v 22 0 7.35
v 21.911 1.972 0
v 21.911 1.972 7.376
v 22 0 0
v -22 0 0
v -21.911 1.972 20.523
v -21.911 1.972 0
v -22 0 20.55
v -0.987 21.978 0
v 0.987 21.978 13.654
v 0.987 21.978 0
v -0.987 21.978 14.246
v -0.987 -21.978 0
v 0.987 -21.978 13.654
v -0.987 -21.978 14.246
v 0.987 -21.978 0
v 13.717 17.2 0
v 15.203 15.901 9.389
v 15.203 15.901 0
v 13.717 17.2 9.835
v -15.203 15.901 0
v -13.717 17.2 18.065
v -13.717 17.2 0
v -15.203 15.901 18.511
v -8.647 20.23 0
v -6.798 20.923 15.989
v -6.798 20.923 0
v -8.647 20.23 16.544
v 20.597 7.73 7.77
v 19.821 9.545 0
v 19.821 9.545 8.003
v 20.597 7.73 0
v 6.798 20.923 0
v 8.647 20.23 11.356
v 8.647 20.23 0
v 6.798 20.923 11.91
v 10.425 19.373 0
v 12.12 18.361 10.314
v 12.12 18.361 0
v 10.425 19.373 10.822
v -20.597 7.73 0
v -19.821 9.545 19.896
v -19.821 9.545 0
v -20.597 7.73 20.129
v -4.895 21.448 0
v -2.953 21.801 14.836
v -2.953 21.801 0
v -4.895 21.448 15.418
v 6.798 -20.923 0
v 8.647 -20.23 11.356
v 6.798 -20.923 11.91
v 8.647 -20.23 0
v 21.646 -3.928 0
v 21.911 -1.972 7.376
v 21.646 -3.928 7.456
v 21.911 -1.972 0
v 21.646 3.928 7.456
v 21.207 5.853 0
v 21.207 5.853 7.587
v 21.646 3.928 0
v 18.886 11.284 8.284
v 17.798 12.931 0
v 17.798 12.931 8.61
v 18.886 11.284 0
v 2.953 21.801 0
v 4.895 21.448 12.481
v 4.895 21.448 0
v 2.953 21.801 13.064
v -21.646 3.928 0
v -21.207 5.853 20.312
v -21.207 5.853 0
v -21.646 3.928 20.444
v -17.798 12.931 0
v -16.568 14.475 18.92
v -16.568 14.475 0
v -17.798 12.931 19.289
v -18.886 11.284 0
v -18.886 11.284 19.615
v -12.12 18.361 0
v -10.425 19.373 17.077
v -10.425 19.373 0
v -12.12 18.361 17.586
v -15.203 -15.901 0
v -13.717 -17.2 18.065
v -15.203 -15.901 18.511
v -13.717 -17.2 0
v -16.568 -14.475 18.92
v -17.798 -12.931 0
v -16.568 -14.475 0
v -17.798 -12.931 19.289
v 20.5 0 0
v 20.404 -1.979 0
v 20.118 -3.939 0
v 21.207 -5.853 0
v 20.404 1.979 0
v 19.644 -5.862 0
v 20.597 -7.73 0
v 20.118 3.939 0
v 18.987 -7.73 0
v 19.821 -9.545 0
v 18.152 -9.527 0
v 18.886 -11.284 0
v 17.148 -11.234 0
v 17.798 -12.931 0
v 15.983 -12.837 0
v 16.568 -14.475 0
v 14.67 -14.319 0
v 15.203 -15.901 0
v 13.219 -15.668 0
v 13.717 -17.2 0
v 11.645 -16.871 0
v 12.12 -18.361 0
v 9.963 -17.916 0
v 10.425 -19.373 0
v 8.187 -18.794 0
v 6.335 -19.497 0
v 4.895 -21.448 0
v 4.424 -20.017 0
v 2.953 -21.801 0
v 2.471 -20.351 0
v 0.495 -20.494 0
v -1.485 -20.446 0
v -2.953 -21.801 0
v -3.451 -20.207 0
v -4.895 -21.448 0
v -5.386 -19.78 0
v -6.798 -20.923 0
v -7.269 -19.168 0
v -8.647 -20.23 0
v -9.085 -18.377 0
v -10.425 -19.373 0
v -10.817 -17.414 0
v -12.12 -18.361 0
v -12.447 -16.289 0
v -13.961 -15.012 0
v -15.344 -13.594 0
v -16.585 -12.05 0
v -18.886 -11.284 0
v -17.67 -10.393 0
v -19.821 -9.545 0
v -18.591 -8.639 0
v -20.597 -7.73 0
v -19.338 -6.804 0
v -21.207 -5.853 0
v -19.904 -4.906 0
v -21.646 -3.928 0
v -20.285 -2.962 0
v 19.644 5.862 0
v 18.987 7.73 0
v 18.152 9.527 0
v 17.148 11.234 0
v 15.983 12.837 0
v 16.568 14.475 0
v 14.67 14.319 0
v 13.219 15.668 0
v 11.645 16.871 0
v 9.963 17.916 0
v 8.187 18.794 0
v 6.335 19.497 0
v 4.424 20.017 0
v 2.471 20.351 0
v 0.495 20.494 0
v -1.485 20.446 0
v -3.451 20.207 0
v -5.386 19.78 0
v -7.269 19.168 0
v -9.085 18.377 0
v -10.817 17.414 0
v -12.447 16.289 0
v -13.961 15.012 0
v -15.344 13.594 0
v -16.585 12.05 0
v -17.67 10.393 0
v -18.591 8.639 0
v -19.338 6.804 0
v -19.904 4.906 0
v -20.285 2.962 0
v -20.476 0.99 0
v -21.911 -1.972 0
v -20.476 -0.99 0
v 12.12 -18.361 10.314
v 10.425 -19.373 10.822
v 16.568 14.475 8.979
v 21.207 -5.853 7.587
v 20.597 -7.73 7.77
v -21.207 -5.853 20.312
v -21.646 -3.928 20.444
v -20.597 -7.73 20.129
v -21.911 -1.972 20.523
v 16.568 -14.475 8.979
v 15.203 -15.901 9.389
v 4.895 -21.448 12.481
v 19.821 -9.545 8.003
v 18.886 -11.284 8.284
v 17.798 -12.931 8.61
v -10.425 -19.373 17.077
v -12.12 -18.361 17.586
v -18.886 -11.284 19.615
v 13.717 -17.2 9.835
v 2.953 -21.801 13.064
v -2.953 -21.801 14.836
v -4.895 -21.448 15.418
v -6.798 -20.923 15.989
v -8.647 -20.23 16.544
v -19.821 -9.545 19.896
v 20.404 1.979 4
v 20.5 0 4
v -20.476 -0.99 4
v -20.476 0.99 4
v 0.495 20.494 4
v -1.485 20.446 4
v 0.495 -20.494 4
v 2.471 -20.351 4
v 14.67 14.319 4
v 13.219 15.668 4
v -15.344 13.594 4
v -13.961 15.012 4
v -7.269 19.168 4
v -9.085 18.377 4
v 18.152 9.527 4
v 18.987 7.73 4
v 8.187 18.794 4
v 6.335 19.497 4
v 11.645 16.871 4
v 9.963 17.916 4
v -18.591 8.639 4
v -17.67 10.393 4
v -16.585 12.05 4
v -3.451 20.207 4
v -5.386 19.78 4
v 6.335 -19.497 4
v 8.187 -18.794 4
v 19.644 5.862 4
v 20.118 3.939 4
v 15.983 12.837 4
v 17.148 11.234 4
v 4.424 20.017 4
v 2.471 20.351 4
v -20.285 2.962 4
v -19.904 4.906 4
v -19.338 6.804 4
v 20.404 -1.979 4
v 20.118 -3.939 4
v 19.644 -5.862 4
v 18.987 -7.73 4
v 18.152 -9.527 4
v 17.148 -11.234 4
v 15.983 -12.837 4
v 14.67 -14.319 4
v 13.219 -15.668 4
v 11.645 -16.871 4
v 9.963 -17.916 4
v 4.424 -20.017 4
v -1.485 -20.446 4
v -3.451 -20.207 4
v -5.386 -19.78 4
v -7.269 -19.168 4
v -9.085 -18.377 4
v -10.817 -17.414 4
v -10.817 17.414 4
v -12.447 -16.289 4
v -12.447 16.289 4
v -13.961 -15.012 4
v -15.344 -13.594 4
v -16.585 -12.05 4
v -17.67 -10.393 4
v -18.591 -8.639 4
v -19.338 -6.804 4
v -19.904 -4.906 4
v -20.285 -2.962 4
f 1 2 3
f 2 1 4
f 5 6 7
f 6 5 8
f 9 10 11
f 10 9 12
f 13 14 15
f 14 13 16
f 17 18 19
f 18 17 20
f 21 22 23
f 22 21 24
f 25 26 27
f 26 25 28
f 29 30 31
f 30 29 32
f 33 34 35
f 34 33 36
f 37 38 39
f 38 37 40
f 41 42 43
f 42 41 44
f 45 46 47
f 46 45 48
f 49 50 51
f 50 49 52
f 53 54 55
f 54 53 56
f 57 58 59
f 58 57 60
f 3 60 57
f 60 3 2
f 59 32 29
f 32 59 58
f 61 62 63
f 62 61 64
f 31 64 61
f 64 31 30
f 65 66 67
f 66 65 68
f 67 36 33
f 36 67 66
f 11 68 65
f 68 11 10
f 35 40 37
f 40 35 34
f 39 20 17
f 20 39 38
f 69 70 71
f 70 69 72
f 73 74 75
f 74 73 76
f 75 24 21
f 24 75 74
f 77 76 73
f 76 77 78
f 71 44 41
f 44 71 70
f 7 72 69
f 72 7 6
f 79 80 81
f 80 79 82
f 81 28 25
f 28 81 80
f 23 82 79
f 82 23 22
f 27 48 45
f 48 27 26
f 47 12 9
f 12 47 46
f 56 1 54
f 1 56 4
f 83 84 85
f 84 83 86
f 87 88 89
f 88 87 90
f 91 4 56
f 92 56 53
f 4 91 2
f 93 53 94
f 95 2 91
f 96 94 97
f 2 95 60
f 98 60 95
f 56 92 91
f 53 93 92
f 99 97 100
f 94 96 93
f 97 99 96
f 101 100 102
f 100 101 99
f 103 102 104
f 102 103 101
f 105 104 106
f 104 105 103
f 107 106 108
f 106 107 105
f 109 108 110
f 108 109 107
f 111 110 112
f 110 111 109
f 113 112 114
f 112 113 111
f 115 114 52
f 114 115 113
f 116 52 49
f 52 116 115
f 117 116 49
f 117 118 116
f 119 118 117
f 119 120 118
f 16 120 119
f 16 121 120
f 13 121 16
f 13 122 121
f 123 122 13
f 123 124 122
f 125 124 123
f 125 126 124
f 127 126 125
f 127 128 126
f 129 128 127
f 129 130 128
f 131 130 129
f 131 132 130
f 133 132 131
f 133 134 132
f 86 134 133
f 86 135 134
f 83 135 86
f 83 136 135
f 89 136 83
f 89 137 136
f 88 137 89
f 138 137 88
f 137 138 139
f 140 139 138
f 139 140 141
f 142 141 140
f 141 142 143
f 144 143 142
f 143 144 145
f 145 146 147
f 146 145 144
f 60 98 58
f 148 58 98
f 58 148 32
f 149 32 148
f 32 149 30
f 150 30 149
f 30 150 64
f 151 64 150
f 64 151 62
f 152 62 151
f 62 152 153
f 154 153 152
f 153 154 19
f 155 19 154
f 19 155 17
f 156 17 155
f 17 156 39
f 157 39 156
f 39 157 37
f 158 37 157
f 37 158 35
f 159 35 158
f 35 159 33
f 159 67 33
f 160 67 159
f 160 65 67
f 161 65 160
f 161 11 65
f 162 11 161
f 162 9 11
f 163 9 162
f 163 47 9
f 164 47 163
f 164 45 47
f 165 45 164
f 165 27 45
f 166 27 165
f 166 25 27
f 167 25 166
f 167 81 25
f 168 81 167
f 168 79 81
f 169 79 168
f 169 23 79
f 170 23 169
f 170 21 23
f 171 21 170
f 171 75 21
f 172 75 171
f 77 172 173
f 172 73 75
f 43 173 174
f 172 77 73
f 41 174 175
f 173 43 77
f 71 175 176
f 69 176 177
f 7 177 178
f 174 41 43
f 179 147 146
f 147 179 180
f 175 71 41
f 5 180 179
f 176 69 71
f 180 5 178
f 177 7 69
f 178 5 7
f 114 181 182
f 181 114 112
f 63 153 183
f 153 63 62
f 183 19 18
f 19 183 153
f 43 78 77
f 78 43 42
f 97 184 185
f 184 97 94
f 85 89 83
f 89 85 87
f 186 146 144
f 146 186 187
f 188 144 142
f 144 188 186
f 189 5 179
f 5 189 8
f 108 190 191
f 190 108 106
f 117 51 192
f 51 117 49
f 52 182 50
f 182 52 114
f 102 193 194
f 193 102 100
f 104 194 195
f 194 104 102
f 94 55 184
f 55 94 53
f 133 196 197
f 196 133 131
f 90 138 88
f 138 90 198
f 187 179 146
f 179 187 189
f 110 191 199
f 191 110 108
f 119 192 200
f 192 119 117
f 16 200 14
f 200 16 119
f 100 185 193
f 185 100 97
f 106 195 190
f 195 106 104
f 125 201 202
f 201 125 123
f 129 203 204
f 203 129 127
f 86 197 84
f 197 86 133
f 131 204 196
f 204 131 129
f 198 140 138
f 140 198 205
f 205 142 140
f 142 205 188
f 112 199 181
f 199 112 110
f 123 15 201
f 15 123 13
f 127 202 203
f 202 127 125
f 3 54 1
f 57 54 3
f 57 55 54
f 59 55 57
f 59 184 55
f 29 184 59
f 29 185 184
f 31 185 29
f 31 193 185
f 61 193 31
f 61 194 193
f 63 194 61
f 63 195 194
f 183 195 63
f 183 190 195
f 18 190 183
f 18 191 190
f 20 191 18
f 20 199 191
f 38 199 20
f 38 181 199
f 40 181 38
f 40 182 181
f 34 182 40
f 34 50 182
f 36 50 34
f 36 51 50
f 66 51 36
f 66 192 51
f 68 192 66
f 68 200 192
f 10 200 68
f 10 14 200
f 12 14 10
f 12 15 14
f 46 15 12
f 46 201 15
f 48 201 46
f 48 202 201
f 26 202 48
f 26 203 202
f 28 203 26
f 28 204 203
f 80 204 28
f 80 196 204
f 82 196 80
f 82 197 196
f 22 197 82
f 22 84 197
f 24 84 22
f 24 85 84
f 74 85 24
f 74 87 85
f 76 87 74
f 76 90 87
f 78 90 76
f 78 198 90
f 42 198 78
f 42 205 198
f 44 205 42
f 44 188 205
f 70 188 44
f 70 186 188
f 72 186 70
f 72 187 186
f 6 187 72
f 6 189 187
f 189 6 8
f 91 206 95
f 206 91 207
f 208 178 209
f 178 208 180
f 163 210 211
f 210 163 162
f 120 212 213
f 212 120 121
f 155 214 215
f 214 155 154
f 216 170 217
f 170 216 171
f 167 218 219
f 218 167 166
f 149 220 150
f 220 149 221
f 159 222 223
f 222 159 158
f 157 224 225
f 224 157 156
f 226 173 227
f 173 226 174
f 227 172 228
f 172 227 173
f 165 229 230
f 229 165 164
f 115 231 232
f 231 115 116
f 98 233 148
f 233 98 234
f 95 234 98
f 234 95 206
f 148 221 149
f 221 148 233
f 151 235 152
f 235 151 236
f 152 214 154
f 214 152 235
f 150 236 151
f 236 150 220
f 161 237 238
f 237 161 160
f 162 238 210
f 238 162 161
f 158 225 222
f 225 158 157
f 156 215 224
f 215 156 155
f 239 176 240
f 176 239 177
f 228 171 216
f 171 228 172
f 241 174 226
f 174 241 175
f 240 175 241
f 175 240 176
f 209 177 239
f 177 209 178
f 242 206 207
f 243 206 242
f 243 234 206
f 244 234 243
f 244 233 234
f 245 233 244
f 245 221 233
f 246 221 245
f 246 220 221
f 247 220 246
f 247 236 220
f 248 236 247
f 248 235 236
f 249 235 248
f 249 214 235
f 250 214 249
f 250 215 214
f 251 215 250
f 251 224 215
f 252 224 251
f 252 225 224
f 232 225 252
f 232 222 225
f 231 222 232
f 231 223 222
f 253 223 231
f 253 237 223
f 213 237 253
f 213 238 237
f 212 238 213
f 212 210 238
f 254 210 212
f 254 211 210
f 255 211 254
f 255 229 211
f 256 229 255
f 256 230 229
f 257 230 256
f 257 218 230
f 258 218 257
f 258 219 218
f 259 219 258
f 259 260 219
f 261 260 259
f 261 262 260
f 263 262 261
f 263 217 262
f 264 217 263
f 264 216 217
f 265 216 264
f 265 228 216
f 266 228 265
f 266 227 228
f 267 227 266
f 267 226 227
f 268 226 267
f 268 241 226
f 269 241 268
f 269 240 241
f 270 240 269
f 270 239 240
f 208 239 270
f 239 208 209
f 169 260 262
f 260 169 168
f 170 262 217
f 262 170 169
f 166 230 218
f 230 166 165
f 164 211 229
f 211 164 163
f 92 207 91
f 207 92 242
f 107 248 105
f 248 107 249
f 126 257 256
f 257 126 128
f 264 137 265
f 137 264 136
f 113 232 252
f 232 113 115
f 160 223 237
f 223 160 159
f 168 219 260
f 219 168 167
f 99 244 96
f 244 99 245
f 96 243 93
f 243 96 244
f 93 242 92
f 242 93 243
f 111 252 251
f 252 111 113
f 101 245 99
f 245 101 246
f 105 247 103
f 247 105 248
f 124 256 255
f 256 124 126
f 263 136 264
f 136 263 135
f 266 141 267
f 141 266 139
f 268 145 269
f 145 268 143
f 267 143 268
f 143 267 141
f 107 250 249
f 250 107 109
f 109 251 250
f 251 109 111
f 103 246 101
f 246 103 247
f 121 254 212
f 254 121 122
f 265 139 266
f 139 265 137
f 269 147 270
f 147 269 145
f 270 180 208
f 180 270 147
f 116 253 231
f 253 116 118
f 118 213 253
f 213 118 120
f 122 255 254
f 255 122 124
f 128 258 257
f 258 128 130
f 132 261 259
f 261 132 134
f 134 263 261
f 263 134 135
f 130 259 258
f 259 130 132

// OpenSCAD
ANG = atan2(12, 40);

difference() {
    cylinder(h=25, r=22, $fa=4);
    # translate([0, 0, 27])
        rotate([0, ANG, 0])
        cube([100, 100, 25], center=true);
    # cylinder(h=8, r=20.5, $fa=4, center=true);
}
